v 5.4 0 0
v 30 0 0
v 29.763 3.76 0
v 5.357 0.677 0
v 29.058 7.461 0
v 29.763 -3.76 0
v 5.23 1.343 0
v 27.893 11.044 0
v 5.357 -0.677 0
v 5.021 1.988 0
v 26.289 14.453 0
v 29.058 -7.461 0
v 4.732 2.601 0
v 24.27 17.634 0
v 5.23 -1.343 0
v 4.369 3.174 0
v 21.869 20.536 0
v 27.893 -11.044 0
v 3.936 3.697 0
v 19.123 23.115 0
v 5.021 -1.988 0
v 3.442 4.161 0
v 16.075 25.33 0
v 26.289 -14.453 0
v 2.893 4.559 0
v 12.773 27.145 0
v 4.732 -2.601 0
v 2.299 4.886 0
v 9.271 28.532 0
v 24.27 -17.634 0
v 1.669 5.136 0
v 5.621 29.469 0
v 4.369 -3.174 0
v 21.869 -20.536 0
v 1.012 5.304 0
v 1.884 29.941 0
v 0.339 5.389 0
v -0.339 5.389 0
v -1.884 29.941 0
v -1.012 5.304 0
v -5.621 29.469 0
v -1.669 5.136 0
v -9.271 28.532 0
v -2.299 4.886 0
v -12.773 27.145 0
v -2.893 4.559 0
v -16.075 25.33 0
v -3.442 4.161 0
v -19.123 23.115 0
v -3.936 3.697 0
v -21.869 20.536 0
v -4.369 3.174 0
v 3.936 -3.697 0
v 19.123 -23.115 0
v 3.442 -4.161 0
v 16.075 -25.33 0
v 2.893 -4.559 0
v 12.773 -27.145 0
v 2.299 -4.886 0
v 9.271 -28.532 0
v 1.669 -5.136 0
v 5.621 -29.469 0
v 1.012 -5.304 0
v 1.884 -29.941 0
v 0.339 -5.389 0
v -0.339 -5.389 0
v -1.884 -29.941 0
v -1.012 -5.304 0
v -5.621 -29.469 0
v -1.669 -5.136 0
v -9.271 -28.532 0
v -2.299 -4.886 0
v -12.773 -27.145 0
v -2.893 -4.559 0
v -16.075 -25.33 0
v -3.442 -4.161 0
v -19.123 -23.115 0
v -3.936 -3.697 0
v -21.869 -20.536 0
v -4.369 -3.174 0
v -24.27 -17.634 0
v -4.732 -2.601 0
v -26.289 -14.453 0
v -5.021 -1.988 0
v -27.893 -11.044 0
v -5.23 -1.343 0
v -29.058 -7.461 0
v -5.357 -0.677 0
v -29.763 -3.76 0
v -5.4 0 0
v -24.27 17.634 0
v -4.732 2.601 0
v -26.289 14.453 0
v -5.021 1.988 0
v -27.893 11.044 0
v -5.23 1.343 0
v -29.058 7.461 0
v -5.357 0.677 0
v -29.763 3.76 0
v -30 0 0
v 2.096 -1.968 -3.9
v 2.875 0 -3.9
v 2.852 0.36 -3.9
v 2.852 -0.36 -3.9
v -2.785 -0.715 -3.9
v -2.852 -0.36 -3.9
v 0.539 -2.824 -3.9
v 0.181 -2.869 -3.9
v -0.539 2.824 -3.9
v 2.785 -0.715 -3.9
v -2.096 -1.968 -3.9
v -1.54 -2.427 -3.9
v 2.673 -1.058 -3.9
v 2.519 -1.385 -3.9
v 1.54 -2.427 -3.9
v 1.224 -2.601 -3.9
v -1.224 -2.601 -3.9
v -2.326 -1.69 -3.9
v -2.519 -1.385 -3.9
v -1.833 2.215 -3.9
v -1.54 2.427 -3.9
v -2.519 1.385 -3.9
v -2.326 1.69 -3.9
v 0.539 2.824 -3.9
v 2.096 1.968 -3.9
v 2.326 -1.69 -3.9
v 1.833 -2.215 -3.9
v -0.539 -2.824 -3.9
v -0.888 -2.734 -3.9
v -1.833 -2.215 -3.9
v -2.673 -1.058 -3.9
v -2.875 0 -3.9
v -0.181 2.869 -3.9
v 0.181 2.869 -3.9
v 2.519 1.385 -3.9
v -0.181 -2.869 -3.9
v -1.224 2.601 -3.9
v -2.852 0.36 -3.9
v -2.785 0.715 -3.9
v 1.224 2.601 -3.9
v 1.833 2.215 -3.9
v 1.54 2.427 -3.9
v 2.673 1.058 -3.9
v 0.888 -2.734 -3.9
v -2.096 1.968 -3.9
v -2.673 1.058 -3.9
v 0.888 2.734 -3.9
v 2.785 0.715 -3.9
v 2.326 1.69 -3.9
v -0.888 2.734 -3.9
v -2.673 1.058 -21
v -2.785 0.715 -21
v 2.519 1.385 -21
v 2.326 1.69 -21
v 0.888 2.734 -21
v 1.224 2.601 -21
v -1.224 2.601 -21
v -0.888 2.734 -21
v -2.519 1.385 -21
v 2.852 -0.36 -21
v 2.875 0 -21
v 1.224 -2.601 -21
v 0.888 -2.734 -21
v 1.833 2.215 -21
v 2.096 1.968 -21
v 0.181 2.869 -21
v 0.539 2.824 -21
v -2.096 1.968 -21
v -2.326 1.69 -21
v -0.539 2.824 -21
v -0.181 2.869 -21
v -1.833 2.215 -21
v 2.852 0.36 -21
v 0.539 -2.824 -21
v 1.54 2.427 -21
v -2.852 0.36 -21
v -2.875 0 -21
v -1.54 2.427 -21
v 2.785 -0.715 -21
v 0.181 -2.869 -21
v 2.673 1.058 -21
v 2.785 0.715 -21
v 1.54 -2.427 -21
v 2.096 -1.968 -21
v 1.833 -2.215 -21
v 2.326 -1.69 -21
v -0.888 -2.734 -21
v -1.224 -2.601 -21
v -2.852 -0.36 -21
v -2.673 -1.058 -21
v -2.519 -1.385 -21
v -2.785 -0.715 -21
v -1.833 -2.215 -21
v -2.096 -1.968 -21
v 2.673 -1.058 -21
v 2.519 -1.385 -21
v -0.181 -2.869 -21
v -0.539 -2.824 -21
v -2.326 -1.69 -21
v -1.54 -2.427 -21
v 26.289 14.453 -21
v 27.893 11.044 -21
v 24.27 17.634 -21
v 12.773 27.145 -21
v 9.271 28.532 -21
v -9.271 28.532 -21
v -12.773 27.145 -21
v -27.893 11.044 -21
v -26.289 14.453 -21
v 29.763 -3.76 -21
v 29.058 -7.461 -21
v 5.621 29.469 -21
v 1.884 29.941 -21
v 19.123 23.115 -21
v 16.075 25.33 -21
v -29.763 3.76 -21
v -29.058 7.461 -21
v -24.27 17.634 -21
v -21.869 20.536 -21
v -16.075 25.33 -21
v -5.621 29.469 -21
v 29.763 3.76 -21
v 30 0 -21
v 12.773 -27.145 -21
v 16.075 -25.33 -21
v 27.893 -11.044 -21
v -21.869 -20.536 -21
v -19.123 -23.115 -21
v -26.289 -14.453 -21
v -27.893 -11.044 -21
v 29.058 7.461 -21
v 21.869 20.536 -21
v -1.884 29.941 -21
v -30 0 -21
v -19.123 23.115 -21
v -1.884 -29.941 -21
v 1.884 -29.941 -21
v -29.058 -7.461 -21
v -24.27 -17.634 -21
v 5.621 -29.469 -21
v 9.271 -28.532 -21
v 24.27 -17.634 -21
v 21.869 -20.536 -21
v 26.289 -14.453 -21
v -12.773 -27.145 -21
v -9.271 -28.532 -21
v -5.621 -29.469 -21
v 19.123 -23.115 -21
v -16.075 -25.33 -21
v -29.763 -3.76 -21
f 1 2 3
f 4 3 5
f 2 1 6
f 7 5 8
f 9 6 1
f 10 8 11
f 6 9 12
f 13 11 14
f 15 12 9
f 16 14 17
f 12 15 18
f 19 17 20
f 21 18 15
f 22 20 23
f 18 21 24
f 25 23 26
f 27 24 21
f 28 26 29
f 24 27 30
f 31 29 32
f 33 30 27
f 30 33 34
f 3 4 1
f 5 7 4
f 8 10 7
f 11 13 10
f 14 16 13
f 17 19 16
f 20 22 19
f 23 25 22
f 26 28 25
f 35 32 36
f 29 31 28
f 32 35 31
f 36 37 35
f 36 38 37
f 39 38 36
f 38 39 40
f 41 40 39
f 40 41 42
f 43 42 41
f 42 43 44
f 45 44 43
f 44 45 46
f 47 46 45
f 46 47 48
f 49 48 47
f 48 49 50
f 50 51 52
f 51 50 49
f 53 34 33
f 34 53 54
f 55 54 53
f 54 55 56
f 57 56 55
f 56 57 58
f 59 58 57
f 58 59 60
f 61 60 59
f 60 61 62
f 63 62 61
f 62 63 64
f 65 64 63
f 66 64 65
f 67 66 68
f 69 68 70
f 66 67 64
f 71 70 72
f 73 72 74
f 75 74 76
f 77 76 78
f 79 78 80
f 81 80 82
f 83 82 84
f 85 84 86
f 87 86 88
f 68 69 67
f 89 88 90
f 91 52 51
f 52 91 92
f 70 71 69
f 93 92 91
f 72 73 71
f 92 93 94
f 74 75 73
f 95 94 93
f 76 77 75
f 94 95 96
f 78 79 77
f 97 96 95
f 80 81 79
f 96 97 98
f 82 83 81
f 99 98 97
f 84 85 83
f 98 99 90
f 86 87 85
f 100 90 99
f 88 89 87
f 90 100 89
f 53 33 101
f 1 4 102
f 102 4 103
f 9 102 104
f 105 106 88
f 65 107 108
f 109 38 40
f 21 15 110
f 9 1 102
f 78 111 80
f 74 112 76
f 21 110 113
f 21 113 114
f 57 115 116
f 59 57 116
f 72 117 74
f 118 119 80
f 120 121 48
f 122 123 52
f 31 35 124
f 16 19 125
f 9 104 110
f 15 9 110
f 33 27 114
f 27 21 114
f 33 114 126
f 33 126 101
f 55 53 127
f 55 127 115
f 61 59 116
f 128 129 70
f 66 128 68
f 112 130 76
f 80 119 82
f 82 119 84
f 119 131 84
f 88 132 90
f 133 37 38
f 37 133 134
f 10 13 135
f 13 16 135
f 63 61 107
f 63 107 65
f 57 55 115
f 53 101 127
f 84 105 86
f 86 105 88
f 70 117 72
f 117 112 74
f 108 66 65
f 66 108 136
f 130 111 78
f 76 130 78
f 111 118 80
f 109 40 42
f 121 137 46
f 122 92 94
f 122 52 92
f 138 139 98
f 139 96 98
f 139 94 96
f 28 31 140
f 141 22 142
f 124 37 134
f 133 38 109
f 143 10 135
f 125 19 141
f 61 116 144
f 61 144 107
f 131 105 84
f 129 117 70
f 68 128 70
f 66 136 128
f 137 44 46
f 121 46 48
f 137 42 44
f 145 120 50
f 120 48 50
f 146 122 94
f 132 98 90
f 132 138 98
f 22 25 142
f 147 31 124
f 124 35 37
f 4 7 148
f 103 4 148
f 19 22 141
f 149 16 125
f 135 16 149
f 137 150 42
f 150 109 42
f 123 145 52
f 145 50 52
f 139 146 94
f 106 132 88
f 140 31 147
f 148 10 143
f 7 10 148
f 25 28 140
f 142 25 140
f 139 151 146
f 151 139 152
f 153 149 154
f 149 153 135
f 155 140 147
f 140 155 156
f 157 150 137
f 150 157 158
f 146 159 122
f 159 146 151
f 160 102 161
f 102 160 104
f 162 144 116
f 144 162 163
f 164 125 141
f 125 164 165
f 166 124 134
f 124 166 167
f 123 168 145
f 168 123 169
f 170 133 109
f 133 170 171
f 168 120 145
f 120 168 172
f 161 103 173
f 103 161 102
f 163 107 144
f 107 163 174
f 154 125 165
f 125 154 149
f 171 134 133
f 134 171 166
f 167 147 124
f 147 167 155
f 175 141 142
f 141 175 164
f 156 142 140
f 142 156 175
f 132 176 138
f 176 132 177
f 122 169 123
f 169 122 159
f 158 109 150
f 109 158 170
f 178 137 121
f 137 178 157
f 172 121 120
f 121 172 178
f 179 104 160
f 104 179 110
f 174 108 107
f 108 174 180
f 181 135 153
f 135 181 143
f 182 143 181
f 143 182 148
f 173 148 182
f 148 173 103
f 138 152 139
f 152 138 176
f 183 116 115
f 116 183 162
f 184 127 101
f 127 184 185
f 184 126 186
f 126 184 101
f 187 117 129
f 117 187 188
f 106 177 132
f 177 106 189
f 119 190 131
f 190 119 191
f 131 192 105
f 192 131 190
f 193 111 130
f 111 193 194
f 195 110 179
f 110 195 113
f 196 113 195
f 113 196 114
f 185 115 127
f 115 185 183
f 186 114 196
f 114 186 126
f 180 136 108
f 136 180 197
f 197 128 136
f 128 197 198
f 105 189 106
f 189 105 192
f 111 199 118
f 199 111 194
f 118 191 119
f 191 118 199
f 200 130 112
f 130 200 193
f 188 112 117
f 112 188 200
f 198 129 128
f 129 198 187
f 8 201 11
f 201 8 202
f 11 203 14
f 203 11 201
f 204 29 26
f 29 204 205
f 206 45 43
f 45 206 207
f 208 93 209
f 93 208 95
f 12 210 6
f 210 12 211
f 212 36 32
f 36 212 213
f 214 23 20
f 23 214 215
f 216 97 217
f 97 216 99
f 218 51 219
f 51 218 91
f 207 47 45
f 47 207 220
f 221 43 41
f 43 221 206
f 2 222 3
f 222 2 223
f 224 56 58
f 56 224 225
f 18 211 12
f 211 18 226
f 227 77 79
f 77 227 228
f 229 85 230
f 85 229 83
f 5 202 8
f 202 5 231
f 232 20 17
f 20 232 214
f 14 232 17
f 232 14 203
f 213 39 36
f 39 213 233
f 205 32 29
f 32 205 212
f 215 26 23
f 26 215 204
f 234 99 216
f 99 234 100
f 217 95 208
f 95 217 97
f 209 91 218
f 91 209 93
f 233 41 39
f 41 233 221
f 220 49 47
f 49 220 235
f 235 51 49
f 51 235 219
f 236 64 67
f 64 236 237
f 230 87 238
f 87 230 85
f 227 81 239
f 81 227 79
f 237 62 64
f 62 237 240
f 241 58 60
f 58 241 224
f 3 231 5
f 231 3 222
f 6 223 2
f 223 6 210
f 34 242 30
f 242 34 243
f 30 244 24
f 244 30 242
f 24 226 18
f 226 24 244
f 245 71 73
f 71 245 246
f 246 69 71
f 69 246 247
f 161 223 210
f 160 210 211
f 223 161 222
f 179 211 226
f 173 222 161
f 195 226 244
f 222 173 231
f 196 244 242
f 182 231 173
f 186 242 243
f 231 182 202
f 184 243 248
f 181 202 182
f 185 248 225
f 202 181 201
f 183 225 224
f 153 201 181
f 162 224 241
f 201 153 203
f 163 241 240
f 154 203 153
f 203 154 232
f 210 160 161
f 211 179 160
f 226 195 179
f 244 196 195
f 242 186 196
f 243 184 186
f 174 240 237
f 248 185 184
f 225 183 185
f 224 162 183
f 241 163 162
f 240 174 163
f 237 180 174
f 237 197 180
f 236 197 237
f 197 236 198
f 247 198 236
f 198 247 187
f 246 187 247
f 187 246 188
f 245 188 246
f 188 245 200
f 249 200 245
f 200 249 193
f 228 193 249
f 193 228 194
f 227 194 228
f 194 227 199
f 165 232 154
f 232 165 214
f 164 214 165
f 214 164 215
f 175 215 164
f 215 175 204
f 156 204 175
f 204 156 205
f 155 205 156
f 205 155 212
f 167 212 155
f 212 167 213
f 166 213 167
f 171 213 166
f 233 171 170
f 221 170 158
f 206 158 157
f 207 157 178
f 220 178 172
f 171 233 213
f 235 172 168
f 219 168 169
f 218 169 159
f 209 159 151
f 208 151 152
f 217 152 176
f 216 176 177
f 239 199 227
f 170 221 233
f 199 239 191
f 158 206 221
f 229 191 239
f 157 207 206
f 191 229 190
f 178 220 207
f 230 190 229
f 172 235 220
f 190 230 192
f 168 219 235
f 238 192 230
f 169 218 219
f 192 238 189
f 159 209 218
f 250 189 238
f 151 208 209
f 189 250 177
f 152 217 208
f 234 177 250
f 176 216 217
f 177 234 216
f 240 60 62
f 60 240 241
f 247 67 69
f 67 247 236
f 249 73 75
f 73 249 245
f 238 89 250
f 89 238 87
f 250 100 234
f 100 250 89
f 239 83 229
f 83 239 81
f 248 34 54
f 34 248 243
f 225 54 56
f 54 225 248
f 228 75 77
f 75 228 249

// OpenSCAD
$fn = 50;


difference() {
	union() {
		translate(v = [0, 0, -21.0000000000]) {
			cylinder(h = 21, r = 30.0000000000);
		}
	}
	union() {
		translate(v = [0, 0, 0]) {
			rotate(a = [0, 0, 0]) {
				difference() {
					union() {
						translate(v = [0, 0, -24.0000000000]) {
							cylinder(h = 24, r = 2.6000000000);
						}
						translate(v = [0, 0, -3.9000000000]) {
							cylinder(h = 3.9000000000, r1 = 2.8750000000, r2 = 5.4000000000);
						}
						translate(v = [0, 0, -24.0000000000]) {
							cylinder(h = 24, r = 2.8750000000);
						}
						translate(v = [0, 0, -24.0000000000]) {
							cylinder(h = 24, r = 2.6000000000);
						}
					}
					union();
				}
			}
		}
	}
}
